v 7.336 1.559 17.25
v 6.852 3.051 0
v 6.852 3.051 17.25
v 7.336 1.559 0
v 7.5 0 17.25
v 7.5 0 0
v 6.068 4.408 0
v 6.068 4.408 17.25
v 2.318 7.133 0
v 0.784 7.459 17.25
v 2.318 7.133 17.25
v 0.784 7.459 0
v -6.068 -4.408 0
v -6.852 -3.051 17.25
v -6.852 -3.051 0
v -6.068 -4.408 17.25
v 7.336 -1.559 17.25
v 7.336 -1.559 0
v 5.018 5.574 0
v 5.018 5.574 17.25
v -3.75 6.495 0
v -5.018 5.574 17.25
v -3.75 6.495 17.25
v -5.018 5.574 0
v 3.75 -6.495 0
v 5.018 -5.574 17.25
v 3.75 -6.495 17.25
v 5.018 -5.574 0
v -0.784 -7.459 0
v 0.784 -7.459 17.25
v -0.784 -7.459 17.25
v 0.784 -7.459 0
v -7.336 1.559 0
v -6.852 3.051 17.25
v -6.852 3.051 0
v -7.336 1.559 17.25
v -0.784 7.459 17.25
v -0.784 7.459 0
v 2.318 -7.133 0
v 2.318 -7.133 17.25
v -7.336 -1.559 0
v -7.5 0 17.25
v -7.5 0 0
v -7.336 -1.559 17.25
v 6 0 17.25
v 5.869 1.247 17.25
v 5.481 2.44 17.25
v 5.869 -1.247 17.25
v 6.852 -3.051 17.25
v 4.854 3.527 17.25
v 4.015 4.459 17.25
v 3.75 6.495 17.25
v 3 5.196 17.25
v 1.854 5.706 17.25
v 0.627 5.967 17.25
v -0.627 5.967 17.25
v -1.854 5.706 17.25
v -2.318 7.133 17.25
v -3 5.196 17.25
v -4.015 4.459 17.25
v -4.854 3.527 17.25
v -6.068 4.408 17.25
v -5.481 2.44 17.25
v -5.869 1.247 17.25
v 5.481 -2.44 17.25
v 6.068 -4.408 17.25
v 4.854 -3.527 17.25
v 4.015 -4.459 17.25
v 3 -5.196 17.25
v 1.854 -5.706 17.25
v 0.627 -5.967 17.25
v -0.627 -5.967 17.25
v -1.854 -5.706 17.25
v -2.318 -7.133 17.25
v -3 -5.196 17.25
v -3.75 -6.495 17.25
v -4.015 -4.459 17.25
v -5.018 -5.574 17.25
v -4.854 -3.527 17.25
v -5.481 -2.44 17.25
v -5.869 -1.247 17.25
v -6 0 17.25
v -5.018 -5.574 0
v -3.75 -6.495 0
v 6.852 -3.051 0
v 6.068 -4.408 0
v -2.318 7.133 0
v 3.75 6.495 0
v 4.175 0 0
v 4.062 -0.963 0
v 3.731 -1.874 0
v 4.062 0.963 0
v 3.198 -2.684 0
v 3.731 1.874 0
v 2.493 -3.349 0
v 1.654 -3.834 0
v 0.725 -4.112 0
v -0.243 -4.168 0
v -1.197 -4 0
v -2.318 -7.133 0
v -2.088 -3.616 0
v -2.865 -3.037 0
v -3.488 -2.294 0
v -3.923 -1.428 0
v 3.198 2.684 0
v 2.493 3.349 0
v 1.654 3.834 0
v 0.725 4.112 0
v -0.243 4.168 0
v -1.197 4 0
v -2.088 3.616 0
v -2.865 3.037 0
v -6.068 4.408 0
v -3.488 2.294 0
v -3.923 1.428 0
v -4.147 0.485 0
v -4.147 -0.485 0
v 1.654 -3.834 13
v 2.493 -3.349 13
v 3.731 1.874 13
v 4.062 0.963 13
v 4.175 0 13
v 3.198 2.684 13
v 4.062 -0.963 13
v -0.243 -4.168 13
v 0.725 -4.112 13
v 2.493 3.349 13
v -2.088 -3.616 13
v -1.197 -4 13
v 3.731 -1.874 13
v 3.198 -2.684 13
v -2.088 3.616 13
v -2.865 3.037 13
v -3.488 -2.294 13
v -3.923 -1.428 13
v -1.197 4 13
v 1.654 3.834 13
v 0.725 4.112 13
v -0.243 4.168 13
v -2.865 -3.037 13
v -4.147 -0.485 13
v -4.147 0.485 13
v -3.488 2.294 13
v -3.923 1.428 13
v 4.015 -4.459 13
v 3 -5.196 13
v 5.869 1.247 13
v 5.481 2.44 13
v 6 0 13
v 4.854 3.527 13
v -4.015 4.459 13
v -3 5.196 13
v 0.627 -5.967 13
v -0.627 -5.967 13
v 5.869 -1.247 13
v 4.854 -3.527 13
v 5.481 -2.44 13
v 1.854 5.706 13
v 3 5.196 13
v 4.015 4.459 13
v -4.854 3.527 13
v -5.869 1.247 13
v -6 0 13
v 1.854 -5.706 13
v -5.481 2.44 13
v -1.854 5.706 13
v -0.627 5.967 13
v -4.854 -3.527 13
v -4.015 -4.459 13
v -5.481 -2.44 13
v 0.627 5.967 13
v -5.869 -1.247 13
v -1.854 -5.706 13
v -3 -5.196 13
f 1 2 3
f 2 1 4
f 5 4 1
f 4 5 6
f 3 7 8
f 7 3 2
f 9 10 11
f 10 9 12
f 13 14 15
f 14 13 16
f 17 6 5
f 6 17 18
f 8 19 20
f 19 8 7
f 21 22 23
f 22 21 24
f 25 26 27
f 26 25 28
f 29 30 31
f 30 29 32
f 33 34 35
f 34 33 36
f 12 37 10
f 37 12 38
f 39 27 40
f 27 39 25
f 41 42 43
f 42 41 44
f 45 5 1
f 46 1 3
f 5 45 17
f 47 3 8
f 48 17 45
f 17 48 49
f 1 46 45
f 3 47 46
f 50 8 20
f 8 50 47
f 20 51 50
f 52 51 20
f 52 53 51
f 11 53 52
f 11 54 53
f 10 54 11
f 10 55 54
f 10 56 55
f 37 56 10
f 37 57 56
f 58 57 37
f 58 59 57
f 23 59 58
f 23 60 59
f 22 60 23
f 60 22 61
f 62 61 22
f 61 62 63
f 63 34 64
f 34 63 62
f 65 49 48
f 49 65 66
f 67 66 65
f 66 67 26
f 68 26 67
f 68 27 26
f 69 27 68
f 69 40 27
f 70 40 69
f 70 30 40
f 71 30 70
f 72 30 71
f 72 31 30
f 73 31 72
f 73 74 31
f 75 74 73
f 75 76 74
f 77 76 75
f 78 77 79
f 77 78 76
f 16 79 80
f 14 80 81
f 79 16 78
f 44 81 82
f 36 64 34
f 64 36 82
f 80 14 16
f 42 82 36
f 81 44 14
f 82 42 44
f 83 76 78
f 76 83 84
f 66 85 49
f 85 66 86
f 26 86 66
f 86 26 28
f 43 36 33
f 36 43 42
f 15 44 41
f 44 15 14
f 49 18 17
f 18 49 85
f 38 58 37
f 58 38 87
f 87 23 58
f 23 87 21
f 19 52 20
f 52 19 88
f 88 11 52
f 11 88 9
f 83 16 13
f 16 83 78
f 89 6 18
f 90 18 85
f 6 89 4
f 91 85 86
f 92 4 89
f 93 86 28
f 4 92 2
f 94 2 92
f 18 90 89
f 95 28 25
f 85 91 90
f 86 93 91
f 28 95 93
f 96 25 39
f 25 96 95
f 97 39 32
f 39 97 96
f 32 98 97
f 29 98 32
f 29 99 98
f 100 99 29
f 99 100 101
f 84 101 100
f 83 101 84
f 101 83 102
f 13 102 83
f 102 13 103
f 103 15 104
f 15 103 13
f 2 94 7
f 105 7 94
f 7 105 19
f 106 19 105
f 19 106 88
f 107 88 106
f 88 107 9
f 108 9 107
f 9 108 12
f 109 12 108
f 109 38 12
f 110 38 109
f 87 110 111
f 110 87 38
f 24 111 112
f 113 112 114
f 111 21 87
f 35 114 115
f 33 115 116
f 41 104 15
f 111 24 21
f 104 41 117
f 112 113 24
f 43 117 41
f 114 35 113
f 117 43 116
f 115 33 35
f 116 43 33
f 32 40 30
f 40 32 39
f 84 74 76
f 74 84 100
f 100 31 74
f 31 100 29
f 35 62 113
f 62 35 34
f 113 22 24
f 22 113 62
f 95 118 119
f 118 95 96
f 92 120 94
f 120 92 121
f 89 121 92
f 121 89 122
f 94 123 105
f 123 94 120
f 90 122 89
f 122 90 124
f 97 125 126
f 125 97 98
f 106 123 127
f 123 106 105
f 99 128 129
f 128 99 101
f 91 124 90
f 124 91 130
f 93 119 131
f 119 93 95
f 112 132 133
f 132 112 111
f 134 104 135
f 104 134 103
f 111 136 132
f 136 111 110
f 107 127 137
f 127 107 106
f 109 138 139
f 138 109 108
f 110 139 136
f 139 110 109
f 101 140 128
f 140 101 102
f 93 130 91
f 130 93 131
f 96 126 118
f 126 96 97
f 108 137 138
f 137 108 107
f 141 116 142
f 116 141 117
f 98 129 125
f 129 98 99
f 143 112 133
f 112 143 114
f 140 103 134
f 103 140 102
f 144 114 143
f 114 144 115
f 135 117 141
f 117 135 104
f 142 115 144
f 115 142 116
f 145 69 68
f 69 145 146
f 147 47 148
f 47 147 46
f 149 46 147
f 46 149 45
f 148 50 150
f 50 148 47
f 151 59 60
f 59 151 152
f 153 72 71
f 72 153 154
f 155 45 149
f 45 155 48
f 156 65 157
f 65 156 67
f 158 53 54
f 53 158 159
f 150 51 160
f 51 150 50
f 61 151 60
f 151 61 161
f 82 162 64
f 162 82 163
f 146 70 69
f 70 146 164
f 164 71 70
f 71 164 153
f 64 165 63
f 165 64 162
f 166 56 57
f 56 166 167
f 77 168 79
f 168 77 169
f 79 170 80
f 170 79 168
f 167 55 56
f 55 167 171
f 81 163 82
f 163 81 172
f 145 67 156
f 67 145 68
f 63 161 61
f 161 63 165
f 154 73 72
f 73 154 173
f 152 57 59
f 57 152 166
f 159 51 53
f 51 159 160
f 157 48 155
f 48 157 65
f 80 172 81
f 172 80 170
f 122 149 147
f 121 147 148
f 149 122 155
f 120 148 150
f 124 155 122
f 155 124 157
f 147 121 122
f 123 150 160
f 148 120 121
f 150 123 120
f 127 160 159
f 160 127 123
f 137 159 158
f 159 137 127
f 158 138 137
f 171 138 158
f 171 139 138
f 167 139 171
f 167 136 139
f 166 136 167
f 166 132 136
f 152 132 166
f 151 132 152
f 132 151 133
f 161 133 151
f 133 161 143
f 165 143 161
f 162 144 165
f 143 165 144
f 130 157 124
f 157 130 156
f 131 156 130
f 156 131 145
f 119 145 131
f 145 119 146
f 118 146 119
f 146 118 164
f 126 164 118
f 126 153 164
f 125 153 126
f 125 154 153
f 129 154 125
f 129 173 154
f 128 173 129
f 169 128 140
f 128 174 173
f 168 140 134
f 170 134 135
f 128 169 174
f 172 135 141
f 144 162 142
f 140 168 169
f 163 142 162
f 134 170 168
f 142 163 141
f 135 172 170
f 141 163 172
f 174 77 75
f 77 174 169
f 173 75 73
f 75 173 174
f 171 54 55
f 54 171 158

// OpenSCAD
outer_d = 15;
inset_d = 12;
pin_d = 8.35;
inset_h = 4.25;
length = 17.25;
eps = 1;
$fs=1;
difference () {
  cylinder(h=length,d=outer_d);
  translate([0,0,-eps]) cylinder(h=length+2*eps,d=pin_d);
  translate([0,0,length-inset_h]) cylinder(h=inset_h+eps,d=inset_d);
}
